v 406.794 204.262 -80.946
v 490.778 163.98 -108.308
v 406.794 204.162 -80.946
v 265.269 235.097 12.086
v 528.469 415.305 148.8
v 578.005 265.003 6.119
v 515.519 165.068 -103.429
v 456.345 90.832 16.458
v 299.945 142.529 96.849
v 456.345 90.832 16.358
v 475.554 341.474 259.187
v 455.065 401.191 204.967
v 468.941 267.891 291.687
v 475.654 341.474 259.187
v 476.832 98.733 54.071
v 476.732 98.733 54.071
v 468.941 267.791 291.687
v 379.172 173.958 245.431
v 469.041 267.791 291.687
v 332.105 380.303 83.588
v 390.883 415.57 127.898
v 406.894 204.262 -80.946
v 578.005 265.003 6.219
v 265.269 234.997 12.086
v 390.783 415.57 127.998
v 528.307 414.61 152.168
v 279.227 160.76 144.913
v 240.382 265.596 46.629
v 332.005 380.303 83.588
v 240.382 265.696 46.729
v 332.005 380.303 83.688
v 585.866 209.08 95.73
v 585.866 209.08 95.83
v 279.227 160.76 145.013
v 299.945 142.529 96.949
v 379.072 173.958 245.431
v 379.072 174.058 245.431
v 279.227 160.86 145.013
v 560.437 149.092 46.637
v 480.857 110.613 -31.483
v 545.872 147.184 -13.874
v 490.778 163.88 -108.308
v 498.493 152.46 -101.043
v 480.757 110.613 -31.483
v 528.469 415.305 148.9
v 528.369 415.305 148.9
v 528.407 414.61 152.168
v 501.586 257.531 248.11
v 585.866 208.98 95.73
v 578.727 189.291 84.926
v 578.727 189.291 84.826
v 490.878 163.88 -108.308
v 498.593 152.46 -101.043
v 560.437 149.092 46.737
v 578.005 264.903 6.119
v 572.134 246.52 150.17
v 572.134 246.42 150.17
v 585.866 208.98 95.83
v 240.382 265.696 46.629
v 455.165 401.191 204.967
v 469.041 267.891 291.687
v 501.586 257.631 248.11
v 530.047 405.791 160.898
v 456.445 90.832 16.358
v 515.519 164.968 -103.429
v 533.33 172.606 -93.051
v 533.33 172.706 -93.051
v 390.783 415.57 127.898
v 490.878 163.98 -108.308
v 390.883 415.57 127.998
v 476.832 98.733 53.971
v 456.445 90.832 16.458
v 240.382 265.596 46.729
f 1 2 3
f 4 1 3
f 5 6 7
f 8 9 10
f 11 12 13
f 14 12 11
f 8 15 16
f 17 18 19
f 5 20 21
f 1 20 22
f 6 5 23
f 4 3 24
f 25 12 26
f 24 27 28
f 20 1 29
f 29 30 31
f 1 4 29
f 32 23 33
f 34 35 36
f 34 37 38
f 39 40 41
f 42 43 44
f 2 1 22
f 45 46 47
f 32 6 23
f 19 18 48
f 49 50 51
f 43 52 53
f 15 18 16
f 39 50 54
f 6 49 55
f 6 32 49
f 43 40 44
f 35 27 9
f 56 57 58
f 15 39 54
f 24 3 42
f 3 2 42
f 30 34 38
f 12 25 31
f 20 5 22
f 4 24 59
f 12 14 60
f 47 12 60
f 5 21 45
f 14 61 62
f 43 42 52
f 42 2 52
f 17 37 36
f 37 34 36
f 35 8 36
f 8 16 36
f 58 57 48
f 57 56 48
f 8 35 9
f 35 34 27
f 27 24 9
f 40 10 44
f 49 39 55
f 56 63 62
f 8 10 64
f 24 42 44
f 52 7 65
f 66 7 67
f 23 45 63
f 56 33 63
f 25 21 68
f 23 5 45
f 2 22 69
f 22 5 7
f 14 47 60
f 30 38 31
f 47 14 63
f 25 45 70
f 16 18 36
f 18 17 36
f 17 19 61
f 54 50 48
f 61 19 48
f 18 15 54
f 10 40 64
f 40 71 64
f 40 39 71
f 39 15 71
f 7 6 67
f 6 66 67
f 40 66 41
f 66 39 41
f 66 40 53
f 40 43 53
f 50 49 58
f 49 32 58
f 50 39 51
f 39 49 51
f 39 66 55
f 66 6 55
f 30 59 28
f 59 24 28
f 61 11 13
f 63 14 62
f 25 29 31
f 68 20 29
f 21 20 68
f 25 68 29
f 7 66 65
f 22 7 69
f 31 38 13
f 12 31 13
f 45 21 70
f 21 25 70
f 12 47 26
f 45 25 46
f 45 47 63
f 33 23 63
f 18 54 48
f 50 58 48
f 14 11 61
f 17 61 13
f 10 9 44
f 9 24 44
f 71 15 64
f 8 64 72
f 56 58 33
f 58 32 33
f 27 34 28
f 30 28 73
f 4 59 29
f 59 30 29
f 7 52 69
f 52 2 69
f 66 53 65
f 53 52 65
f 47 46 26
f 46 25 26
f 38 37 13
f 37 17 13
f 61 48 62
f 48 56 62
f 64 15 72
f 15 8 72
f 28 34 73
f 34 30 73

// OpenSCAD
hull(){ translate([265.268875611,234.997284085,12.0858229223])cube(0.1,0.1,0.1);
translate([456.345241859,90.8314890926,16.3578880809])cube(0.1,0.1,0.1);
translate([299.9445629,142.528784648,96.8486140725])cube(0.1,0.1,0.1);
translate([279.227344992,160.759936407,144.912559618])cube(0.1,0.1,0.1);
translate([240.381771744,265.596182283,46.6285791101])cube(0.1,0.1,0.1);
translate([406.793819411,204.162240464,-80.946402704])cube(0.1,0.1,0.1);
translate([490.777510268,163.880470188,-108.307605155])cube(0.1,0.1,0.1);
translate([332.005208333,380.203125,83.5885416667])cube(0.1,0.1,0.1);
translate([379.072289157,173.957831325,245.331325301])cube(0.1,0.1,0.1);
translate([476.73210893,98.7333755541,53.9708676377])cube(0.1,0.1,0.1);
translate([515.418749488,164.968040646,-103.429074818])cube(0.1,0.1,0.1);
translate([480.756521739,110.613043478,-31.4826086957])cube(0.1,0.1,0.1);
translate([498.493054671,152.460175863,-101.043073786])cube(0.1,0.1,0.1);
translate([390.782747604,415.469648562,127.897763578])cube(0.1,0.1,0.1);
translate([455.065116279,401.090697674,204.86744186])cube(0.1,0.1,0.1);
translate([528.369036713,415.205059545,148.800295962])cube(0.1,0.1,0.1);
translate([528.307177033,414.510047847,152.067942584])cube(0.1,0.1,0.1);
translate([545.772413793,147.184482759,-13.874137931])cube(0.1,0.1,0.1);
translate([585.765805877,208.980409617,95.7301869991])cube(0.1,0.1,0.1);
translate([533.22956872,172.60614197,-93.0508474576])cube(0.1,0.1,0.1);
translate([577.905195116,264.90304046,6.11922432368])cube(0.1,0.1,0.1);
translate([560.336730173,149.091714665,46.6371289322])cube(0.1,0.1,0.1);
translate([578.62745098,189.291101056,84.826546003])cube(0.1,0.1,0.1);
translate([529.946808511,405.691489362,160.79787234])cube(0.1,0.1,0.1);
translate([572.034220532,246.419518378,150.069708492])cube(0.1,0.1,0.1);
translate([475.553687245,341.374009128,259.087196733])cube(0.1,0.1,0.1);
translate([468.941105284,267.791448165,291.587333602])cube(0.1,0.1,0.1);
translate([501.486146096,257.531486146,248.010075567])cube(0.1,0.1,0.1); }
